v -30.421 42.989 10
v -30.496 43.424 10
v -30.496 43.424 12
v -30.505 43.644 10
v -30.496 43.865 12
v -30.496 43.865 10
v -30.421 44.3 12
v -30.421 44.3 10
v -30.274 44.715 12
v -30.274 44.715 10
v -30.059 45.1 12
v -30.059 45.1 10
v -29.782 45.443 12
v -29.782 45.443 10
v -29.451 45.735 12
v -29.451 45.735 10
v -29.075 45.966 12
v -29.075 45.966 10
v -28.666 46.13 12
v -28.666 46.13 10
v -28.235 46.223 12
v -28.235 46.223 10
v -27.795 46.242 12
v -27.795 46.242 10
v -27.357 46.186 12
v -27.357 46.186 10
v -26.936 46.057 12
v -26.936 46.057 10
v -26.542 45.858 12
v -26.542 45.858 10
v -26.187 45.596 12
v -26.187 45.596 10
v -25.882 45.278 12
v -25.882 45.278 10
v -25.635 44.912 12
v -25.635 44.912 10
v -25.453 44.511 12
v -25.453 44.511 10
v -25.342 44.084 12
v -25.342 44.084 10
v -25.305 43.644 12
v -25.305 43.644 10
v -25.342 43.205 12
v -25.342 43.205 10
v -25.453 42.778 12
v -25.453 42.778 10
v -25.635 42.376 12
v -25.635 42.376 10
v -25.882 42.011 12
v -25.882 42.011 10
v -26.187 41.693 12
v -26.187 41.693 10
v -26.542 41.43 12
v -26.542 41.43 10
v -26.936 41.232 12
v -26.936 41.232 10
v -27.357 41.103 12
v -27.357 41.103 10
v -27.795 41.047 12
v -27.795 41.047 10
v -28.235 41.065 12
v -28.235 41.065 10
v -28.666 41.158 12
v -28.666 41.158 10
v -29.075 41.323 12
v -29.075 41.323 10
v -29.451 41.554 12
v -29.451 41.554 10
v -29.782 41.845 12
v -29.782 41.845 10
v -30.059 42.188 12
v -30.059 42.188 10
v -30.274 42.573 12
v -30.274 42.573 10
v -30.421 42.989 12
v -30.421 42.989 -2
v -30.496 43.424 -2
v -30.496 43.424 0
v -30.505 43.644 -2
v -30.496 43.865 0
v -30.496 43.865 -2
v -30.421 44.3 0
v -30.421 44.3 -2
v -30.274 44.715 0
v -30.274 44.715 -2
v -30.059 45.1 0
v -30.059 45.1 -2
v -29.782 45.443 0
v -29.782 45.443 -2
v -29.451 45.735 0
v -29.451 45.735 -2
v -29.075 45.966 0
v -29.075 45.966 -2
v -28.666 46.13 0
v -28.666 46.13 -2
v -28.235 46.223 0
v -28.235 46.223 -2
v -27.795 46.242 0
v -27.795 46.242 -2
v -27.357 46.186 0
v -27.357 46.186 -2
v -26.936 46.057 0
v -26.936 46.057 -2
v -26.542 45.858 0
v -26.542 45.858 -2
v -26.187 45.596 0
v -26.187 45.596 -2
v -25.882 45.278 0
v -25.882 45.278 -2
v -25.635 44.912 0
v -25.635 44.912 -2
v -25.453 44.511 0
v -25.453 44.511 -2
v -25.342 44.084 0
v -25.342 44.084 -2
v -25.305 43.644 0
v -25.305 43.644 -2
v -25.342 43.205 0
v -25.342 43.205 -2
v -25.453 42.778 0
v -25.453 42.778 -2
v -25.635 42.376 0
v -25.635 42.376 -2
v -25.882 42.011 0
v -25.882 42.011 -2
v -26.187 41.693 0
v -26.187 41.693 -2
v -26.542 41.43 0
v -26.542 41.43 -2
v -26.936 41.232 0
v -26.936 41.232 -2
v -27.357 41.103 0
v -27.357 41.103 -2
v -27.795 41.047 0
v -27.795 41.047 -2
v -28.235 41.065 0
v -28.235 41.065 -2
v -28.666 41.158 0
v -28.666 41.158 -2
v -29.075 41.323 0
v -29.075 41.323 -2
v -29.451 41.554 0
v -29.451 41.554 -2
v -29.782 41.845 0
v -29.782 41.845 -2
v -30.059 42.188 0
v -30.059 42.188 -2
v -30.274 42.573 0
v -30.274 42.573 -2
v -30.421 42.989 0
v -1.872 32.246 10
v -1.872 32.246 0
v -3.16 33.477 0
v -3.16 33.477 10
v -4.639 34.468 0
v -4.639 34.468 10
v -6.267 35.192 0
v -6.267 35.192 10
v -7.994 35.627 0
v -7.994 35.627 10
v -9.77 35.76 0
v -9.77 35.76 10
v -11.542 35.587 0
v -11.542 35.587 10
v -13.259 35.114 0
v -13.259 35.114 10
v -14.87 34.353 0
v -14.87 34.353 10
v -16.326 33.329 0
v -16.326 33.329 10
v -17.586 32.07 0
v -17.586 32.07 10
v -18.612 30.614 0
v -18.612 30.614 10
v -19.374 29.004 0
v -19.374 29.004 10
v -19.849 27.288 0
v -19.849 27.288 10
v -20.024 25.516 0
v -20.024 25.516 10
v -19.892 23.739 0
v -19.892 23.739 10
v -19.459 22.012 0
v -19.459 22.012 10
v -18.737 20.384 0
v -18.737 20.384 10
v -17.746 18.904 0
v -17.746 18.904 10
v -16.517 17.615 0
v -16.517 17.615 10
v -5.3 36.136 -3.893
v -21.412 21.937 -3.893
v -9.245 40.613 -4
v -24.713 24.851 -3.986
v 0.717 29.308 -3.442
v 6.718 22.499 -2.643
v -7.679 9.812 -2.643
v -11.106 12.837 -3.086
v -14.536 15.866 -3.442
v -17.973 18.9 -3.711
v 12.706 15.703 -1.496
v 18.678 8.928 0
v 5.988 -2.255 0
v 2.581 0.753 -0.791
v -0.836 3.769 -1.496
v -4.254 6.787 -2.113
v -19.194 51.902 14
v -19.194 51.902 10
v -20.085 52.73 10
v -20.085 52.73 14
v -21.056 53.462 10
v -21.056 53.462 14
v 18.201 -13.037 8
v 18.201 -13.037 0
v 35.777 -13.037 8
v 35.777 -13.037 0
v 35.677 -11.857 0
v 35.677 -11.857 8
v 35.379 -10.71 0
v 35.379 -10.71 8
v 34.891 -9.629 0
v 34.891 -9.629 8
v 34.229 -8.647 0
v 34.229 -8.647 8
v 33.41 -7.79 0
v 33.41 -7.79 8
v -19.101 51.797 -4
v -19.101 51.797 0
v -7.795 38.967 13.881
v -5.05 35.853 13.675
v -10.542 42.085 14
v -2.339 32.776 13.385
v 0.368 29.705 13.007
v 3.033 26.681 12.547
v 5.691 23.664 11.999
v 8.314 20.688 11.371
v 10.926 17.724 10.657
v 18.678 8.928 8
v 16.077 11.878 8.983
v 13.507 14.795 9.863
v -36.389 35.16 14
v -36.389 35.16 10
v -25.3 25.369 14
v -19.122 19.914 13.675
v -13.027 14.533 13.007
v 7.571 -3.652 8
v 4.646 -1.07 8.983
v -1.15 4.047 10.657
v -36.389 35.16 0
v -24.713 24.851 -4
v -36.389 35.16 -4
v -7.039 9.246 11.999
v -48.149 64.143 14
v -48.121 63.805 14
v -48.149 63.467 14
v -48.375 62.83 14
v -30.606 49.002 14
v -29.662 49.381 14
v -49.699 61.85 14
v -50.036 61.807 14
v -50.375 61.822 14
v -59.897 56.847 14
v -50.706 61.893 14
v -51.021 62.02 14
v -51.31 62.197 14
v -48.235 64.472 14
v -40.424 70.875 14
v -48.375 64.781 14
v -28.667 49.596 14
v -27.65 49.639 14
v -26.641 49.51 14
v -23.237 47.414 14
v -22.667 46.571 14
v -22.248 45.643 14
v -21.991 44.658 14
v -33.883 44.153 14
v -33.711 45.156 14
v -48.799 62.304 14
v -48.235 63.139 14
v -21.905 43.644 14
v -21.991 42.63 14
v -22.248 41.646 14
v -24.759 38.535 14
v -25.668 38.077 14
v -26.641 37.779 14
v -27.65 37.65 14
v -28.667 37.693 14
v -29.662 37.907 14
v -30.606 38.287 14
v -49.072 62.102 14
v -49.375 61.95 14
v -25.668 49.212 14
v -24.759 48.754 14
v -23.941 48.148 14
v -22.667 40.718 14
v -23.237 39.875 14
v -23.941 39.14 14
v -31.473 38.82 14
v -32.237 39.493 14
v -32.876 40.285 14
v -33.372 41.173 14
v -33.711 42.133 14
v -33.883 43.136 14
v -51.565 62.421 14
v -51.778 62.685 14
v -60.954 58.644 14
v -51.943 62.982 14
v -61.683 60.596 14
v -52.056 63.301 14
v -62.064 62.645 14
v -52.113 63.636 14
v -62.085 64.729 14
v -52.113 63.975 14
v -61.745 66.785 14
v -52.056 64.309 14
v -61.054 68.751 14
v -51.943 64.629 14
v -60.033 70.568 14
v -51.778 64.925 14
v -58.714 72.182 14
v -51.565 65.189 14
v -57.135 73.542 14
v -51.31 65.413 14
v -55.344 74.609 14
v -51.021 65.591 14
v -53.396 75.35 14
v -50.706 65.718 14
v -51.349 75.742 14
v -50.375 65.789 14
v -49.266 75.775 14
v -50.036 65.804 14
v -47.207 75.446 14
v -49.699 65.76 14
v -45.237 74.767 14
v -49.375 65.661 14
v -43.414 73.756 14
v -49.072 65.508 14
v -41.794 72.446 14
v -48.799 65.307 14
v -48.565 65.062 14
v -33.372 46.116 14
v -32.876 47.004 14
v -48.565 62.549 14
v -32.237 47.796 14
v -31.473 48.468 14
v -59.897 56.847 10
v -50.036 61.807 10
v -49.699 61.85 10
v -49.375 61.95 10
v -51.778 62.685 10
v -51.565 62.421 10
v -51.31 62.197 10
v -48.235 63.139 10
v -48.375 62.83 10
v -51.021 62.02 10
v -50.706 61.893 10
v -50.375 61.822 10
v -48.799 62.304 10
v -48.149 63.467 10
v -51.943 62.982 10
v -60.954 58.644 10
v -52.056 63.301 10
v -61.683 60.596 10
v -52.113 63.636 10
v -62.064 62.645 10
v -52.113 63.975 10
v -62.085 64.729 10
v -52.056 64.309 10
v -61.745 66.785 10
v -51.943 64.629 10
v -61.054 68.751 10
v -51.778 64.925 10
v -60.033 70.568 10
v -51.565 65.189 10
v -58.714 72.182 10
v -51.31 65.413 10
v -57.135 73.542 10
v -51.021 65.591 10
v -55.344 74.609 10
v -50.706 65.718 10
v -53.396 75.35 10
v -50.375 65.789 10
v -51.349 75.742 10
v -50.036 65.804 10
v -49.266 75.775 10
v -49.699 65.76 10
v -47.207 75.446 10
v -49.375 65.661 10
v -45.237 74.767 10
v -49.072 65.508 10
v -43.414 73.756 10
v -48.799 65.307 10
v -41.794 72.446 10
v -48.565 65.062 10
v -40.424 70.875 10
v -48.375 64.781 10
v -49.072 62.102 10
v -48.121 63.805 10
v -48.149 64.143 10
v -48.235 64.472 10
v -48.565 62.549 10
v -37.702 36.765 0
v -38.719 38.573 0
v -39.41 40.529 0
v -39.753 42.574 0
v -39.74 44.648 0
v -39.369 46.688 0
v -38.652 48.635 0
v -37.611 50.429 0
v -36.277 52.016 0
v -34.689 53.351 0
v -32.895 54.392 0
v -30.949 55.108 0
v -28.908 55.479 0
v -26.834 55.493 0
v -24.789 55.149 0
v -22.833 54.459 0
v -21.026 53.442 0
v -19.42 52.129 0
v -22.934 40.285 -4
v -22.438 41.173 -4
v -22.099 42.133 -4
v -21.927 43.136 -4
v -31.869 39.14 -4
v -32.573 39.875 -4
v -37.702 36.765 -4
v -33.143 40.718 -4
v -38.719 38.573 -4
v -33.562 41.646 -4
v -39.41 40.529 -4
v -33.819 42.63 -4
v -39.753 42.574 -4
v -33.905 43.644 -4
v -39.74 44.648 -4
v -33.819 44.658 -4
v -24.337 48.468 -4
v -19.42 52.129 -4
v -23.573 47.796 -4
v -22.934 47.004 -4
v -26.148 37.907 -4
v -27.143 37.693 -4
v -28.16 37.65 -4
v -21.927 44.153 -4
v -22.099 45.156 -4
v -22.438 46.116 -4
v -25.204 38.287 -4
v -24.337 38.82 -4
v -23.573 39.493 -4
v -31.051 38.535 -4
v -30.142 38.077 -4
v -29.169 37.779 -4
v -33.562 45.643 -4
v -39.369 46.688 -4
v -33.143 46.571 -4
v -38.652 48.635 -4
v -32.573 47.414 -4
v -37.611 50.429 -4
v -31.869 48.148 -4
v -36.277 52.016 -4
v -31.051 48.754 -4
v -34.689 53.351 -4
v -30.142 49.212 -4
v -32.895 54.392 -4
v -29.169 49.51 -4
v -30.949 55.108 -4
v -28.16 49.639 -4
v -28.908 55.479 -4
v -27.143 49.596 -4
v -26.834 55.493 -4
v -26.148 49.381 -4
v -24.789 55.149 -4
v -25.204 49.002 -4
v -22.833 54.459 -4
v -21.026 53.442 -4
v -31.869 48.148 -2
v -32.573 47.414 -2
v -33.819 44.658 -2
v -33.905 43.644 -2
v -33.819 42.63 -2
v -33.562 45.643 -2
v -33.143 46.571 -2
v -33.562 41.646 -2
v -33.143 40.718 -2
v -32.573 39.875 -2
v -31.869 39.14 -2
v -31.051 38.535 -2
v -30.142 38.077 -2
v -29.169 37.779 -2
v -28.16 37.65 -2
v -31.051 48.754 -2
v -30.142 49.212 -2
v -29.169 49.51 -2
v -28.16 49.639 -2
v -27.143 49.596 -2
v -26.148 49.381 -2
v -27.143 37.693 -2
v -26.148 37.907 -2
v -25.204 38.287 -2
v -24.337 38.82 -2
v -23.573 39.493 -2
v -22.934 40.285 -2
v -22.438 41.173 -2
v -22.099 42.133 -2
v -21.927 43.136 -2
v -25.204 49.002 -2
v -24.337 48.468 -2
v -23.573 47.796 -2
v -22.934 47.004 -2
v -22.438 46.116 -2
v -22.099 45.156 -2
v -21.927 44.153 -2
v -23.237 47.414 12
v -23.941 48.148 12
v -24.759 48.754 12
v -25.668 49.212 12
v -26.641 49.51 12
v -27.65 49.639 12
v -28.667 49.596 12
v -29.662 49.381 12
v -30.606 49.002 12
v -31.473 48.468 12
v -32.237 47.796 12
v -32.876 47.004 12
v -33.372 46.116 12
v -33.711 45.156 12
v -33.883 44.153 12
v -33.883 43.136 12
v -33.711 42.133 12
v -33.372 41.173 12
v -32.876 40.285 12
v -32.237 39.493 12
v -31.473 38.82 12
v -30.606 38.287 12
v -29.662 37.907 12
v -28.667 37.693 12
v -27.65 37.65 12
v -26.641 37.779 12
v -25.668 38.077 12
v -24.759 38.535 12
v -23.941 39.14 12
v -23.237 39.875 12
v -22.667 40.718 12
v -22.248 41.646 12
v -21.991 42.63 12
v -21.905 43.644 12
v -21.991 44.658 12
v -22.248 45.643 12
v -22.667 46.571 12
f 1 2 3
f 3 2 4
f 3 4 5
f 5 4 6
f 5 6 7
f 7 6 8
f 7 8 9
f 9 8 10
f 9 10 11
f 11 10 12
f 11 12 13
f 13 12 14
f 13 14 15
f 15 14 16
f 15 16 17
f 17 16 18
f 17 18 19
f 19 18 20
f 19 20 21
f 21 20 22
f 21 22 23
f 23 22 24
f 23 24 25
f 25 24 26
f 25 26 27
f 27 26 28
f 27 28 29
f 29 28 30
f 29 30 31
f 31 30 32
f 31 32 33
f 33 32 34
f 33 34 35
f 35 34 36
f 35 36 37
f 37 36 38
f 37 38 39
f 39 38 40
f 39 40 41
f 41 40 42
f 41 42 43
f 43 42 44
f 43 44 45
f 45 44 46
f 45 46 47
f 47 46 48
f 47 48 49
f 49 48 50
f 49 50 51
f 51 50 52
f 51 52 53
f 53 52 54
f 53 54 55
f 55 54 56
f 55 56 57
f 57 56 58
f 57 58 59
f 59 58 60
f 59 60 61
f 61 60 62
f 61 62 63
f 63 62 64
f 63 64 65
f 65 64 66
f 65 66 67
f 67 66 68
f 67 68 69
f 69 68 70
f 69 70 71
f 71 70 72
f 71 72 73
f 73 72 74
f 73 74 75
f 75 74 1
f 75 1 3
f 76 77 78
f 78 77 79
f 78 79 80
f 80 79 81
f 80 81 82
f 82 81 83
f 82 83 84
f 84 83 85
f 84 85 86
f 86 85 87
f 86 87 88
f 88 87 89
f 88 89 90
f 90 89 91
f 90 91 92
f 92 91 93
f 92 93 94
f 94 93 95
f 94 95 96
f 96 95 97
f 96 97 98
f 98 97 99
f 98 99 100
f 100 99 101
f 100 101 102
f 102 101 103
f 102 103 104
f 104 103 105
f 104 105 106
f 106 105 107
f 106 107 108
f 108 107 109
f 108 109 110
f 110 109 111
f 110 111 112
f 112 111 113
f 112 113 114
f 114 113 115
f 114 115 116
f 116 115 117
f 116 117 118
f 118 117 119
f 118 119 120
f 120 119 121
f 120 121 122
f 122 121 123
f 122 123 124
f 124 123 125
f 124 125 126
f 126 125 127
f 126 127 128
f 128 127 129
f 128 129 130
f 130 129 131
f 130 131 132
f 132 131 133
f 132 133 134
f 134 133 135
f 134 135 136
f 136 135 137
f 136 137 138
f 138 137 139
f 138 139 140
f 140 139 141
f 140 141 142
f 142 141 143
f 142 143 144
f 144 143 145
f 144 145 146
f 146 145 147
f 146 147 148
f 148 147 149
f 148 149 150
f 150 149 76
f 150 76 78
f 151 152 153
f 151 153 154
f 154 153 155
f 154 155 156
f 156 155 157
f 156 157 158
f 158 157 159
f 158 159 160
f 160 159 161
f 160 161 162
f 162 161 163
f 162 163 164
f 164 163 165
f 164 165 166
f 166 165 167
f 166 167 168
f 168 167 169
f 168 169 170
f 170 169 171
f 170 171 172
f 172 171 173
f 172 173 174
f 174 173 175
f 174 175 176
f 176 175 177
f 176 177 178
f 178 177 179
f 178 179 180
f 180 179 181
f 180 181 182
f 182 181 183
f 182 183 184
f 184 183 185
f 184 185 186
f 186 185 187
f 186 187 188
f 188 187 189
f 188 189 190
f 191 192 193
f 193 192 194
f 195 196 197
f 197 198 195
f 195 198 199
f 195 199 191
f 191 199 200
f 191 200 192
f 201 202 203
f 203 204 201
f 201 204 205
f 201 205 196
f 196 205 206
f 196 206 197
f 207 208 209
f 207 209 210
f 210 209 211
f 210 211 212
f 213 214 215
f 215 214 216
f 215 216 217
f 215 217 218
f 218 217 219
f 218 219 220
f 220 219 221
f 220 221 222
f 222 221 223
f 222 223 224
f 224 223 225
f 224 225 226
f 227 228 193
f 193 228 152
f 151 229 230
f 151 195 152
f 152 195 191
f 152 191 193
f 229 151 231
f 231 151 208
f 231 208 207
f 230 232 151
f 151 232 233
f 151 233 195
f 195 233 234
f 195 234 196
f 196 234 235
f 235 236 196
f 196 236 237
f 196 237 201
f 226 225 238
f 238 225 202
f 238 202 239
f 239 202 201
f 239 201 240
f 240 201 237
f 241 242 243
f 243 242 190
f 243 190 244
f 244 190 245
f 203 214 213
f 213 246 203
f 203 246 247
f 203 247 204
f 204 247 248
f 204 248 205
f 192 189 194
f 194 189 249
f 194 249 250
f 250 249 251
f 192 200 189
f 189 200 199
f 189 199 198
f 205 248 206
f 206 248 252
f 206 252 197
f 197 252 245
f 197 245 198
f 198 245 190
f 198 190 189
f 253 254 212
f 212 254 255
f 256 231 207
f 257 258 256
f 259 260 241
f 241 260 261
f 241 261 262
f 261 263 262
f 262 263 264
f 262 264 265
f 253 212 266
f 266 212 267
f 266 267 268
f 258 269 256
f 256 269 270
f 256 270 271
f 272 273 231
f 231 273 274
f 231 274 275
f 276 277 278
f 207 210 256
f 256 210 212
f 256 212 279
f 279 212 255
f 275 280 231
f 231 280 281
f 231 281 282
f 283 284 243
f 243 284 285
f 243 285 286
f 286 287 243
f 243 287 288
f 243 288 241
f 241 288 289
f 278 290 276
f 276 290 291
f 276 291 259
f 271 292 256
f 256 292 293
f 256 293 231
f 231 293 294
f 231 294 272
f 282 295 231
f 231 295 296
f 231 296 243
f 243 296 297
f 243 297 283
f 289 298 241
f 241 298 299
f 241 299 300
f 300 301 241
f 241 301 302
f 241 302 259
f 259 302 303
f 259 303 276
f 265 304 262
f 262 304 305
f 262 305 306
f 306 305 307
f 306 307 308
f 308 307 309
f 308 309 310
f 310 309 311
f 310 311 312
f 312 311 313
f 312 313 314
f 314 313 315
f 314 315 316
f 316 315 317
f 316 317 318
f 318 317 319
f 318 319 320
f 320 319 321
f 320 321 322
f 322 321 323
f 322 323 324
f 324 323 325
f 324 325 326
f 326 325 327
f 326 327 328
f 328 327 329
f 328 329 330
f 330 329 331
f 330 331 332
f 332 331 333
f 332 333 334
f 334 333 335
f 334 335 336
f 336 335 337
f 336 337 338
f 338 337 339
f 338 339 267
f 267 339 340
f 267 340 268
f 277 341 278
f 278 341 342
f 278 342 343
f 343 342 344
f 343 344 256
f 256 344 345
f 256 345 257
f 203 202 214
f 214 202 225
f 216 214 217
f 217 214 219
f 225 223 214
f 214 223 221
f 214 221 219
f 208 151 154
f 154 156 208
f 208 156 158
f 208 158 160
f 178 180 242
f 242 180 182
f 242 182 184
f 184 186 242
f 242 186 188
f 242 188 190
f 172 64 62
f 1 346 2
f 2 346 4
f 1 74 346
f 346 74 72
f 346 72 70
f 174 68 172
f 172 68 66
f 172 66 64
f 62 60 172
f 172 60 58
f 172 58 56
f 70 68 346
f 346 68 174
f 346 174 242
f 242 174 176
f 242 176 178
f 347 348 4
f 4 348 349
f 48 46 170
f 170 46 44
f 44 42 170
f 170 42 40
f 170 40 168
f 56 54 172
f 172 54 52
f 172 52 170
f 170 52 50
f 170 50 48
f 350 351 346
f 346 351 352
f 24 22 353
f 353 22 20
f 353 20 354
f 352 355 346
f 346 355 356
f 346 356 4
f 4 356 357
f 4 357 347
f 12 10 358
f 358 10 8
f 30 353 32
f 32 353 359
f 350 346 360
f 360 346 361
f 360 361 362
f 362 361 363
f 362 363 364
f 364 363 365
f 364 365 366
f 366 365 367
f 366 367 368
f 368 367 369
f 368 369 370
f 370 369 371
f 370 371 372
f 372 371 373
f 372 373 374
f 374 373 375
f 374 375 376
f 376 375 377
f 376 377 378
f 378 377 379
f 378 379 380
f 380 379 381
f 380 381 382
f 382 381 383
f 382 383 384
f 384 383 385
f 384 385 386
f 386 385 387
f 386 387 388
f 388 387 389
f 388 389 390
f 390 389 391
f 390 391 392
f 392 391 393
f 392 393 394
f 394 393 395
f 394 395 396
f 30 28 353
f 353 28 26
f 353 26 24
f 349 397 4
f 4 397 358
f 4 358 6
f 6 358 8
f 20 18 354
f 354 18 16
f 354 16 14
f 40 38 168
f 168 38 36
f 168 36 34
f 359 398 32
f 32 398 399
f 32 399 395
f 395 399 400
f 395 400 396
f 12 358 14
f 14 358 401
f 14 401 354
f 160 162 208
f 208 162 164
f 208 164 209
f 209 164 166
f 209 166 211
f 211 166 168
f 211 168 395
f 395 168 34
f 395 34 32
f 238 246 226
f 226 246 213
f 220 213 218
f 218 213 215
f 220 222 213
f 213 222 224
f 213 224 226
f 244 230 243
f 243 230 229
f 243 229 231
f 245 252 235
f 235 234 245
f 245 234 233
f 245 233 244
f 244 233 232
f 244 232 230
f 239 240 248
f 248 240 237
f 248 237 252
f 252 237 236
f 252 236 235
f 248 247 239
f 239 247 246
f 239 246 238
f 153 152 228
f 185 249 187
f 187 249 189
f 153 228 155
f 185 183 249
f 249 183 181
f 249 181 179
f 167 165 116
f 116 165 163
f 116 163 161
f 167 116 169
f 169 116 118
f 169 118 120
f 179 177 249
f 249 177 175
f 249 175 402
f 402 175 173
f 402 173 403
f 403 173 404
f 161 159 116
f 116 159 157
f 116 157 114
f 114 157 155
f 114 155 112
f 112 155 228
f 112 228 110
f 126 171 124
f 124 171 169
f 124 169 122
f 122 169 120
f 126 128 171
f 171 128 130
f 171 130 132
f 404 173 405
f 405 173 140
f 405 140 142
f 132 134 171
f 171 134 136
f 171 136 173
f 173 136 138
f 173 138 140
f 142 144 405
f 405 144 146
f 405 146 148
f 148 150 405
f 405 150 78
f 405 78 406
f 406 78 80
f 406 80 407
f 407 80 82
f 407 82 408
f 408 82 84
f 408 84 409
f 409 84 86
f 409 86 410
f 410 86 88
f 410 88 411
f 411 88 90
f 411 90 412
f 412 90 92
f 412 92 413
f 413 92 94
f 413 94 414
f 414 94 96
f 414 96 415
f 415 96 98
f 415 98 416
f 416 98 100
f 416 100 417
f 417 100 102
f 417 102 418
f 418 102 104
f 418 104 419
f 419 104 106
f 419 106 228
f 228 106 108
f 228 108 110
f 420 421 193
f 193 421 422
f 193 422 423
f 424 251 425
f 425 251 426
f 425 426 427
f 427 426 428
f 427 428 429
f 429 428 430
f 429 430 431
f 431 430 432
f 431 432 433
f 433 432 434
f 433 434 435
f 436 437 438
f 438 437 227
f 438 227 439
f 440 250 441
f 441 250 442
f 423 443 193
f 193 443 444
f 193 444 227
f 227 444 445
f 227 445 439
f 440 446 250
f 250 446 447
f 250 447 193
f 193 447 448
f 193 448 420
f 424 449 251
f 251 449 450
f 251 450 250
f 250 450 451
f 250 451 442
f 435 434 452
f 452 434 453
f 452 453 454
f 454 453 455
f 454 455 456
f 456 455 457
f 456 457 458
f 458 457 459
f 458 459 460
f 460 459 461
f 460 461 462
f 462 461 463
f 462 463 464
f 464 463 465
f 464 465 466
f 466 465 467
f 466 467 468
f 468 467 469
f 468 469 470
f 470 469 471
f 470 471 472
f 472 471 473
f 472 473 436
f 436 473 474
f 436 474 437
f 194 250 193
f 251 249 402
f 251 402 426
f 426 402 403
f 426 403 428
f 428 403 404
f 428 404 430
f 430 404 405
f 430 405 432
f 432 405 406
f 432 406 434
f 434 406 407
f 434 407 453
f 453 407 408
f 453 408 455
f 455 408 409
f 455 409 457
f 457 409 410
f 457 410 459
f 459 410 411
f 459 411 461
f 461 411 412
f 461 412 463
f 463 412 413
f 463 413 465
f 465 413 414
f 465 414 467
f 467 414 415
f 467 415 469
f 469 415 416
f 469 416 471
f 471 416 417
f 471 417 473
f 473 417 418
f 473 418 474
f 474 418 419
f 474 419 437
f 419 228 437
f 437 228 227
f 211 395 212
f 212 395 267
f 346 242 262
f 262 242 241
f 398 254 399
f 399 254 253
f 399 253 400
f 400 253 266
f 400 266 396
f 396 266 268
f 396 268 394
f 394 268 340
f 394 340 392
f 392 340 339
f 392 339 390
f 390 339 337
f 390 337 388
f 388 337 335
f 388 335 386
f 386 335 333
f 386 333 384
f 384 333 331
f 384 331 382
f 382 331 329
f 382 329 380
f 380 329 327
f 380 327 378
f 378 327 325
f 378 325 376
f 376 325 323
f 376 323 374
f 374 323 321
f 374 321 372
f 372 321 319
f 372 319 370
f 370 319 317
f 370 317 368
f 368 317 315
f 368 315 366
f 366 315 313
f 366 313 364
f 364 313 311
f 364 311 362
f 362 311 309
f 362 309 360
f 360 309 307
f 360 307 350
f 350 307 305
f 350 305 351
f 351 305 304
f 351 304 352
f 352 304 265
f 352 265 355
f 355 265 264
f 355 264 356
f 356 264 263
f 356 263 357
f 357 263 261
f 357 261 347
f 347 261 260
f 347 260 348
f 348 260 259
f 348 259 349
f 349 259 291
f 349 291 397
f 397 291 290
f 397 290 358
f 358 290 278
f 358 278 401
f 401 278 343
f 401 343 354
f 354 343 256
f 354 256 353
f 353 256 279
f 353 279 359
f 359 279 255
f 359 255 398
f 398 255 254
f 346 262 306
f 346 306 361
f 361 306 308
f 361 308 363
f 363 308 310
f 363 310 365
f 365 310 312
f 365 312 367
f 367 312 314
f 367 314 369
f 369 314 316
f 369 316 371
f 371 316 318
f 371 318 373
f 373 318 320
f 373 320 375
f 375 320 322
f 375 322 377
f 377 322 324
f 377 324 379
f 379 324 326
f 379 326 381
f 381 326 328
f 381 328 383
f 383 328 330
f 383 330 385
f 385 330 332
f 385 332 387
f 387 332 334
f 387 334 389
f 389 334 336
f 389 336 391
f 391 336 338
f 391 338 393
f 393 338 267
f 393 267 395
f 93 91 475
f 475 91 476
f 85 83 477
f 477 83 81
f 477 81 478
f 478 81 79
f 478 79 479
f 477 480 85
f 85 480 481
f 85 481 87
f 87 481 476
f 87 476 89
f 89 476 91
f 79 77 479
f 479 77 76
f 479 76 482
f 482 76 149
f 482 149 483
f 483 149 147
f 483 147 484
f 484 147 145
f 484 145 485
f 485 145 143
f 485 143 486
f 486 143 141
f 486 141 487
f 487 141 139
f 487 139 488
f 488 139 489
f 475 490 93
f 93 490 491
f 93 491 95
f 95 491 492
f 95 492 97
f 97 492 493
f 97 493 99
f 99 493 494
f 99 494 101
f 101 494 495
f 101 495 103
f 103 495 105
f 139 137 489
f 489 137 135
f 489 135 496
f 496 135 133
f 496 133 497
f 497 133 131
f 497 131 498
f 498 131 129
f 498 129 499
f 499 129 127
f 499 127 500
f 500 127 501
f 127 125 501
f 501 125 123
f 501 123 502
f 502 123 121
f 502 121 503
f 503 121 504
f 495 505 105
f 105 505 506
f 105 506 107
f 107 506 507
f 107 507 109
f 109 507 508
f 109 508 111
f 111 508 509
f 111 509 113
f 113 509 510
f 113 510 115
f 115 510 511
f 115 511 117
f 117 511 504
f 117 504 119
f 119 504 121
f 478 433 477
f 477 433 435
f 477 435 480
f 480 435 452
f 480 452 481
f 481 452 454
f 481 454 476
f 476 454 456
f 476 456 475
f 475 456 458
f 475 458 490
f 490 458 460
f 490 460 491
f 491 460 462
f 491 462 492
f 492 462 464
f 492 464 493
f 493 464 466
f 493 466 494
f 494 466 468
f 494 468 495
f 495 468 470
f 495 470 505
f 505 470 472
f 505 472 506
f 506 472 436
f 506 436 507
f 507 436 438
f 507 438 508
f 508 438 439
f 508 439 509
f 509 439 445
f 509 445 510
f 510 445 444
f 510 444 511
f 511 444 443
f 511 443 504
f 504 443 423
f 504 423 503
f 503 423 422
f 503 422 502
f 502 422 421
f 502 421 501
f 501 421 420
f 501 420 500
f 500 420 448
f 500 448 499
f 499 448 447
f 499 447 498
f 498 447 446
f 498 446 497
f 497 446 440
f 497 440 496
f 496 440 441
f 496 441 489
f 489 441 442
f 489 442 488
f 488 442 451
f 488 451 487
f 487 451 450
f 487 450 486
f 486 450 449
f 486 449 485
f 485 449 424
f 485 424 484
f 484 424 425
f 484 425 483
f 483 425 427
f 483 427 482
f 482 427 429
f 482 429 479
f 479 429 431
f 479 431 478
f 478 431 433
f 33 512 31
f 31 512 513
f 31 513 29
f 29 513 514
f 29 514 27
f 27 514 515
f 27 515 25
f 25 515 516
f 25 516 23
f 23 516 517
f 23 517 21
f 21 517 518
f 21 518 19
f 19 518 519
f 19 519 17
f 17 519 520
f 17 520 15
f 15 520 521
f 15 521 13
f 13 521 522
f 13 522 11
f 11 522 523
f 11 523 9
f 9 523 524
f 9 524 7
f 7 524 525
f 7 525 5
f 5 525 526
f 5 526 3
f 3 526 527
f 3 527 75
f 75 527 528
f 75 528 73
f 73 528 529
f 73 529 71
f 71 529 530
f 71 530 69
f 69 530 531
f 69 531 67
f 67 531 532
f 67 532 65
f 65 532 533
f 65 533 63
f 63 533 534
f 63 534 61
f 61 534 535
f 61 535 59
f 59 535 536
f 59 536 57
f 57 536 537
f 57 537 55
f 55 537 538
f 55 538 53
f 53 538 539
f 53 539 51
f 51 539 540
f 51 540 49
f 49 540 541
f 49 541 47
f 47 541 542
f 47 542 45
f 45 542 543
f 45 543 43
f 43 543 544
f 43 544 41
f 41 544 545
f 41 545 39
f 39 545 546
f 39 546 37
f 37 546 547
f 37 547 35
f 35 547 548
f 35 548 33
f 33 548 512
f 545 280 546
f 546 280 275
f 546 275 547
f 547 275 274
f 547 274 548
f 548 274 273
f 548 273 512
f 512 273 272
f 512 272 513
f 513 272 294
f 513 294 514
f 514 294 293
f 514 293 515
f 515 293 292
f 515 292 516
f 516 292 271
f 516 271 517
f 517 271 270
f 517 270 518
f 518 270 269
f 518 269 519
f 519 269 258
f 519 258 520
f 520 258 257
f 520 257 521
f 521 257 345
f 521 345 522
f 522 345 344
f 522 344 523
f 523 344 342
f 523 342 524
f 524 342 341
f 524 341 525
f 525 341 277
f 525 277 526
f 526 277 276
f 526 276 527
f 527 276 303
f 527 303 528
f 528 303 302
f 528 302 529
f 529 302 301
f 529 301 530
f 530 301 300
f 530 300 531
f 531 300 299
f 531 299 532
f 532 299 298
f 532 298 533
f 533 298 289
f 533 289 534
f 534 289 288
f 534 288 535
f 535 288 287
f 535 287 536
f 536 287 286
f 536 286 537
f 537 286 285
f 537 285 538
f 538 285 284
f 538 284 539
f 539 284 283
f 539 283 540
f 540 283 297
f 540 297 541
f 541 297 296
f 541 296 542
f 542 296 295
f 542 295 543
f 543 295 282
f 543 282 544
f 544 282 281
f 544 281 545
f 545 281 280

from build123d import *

# Parameters (mm, degrees)
BOSS_EXTRUDE1_DEPTH = 14
CUT_EXTRUDE1_DEPTH  = 17
CUT_EXTRUDE3_DEPTH  = 10
CUT_EXTRUDE5_DEPTH  = 28.00000000000001
BOSS_EXTRUDE2_START = 10
SKETCH7_R           = 2.599999999999999
BOSS_EXTRUDE2_DEPTH = 4
BOSS_EXTRUDE3_DEPTH = 24.000000000000014
CUT_EXTRUDE6_DEPTH  = 24.000000000000014
FILLET3_R           = 10.371224
SKETCH11_R          = 2.0000000000000036
BOSS_EXTRUDE4_DEPTH = 4.0000000000000036
SKETCH12_R          = 5.999999999999998
CUT_EXTRUDE7_DEPTH  = 2
CUT_EXTRUDE8_START  = -2
SKETCH13_R          = 6.000000000000001
CUT_EXTRUDE8_DEPTH  = 2


with BuildPart() as part:
    # Sketch1 → Boss-Extrude1 (new body)
    with BuildSketch(Plane.XY):
        with BuildLine():
            Line((-36.38946679579018, 35.15986129833476), (18.20052051694879, -13.03747639081095))
            Line((18.20052051694879, -13.03747639081095), (35.77692020217122, -13.037476390810937))
            ThreePointArc((35.77692020217122, -13.037476390810937), (35.15777812721451, -10.159169225075718), (33.40987673348322, -7.79002807961883))
            Line((33.40987673348322, -7.79002807961883), (-19.19377778956647, 51.90227090989418))
            ThreePointArc((-19.19377778956647, 51.90227090989418), (-36.16282709845803, 52.12891060722632), (-36.38946679579018, 35.15986129833476))
        make_face()
    extrude(amount=BOSS_EXTRUDE1_DEPTH)

    # Sketch2 → Cut-Extrude1 (cut)
    with BuildSketch(Plane.XY.offset(14)):
        with BuildLine():
            ThreePointArc((-26.066464510259447, 45.48286358386564), (-29.74341977242946, 45.48286358386556), (-29.74341977242945, 41.80590832169555))
            Line((-29.74341977242943, 41.80590832169553), (-26.066464510259397, 45.48286358386558))
        make_face()
        with BuildLine():
            Line((-26.066464510259397, 45.48286358386558), (-29.74341977242943, 41.80590832169553))
            ThreePointArc((-29.74341977242945, 41.805908321695554), (-26.90996521719519, 41.24229916825121), (-25.304942141344416, 43.64438595278056))
            ThreePointArc((-25.304942141344416, 43.64438595278056), (-25.502855356815083, 44.63936287692983), (-26.066464510259447, 45.48286358386564))
        make_face()
    extrude(amount=-CUT_EXTRUDE1_DEPTH, mode=Mode.SUBTRACT)

    # Sketch3 → Cut-Extrude3 (cut)
    with BuildSketch(Plane(origin=(0, 0, 0), x_dir=(-1, 0, 0), z_dir=(0, 0, -1))):
        Polygon((9.244950076252596, 40.61278154184911), (25.60190789451236, 23.944622093291866), (43.70935849975749, 23.944622093291866), (43.70935849975749, 56.22709716223903), (9.244950076252595, 56.22709716223903), align=None)
    extrude(amount=-CUT_EXTRUDE3_DEPTH, mode=Mode.SUBTRACT)

    # Sketch4 → Cut-Extrude5 (cut)
    with BuildSketch(Plane(origin=(1.5041731974177077, 1.7036790764832412, 0), x_dir=(0.7496354730351515, -0.6618509330410925, 0), z_dir=(-0.6618509330410925, -0.7496354730351515, 0))):
        with BuildLine():
            Line((8.092649067523661, 8), (43.108918661974144, 8))
            Line((43.108918661974144, 8), (43.108918661974144, 14))
            Line((43.108918661974144, 14), (-35.75655339767276, 14))
            add(Edge.make_bspline(
                [(8.092649067523661, 8), (-13.064100153172822, 13.584073422401662), (-35.75655339767276, 14)],
                knots=[0, 0, 0, 1, 1, 1], degree=2))
        make_face()
    extrude(amount=-CUT_EXTRUDE5_DEPTH, mode=Mode.SUBTRACT)



with BuildPart() as body_2:
    # Sketch7 → Boss-Extrude2 (new body)
    with BuildSketch(Plane(origin=(0, 0, 10), x_dir=(-1, 0, 0), z_dir=(0, 0, -1)).offset(BOSS_EXTRUDE2_START)):
        with BuildLine():
            Line((9.244950076252595, 40.61278154184911), (24.71284152511152, 24.85060352151197))
            Line((24.71284152511152, 24.85060352151197), (35.272794661727836, 34.17395478721706))
            Line((35.272794661727836, 34.17395478721706), (36.38946679579018, 35.15986129833476))
            ThreePointArc((36.38946679579018, 35.15986129833476), (36.27690366691708, 52.016347478352856), (19.420417486898984, 52.12891060722668))
            ThreePointArc((19.420417486898984, 52.128910607226686), (19.259089791001077, 51.96445532507904), (19.10094915036315, 51.79693307859034))
            Line((19.10094915036315, 51.79693307859034), (18.710021655268264, 51.3533258590539))
            Line((18.710021655268264, 51.3533258590539), (9.244950076252596, 40.61278154184911))
        make_face()
        with Locations(Location((27.904942141344414, 43.64438595278056, 0), (0, 0, 180))):
            Circle(SKETCH7_R, mode=Mode.SUBTRACT)
    extrude(amount=BOSS_EXTRUDE2_DEPTH)


with BuildPart() as part_1:
    add(part.part)

    add(body_2.part)  # Boss-Extrude3 merges body 2
    # Sketch9 → Boss-Extrude3 (add)
    with BuildSketch(Plane(origin=(14.941459139681696, 13.167114819822281, 0), x_dir=(0, 0, -1), z_dir=(0.7502493779859964, 0.6611549522098625, 0))):
        with BuildLine():
            Line((0, 36.582058615900806), (0, -5.650867010397978))
            add(Edge.make_bspline(
                [(0, -5.650867010397978), (3.8818367436513204, 15.308651069653255), (4, 36.582058615900806)],
                knots=[0, 0, 0, 1, 1, 1], degree=2))
            Line((4, 36.582058615900806), (0, 36.582058615900806))
        make_face()
    extrude(amount=-BOSS_EXTRUDE3_DEPTH)

    # Sketch10 → Cut-Extrude6 (cut)
    with BuildSketch(Plane.XY):
        Polygon((-25.92087579699025, 25.91717339280068), (6.581343150758677, -2.7789391982650153), (-1.9207549102098282, -11.21281031813962), (-35.1442259060093, 19.61838673287275), align=None)
    extrude(amount=-CUT_EXTRUDE6_DEPTH, mode=Mode.SUBTRACT)

    # Fillet3
    fillet3_edges = [part_1.edges().sort_by_distance(p)[0] for p in [
        (-24.712841525111525, 24.85060352151197, 5),
        (-9.244950076252596, 40.61278154184911, 5),
    ]]
    fillet(fillet3_edges, radius=FILLET3_R - 0.0001)  # a hair under: the kernel refuses the full size

    # Sketch11 → Boss-Extrude4 (add)
    with BuildSketch(Plane.XY.offset(14)):
        with BuildLine():
            Line((-56.27002242528391, 53.500762526462196), (-36.38946679579018, 35.15986129833476))
            Line((-36.38946679579018, 35.15986129833476), (-31.30885180689802, 50.34187338631568))
            Line((-31.30885180689802, 50.34187338631568), (-18.71002165526834, 51.353325859054))
            Line((-18.71002165526834, 51.353325859054), (-40.42419503361445, 70.87498928012118))
            ThreePointArc((-40.42419503361445, 70.87498928012118), (-57.13470265149496, 73.54200286861439), (-59.89717634802535, 56.84701064326646))
            Line((-59.89717634802535, 56.84701064326646), (-56.27002242528391, 53.500762526462196))
        make_face()
        with Locations((-50.120598780049356, 63.8053531942874)):
            Circle(SKETCH11_R, mode=Mode.SUBTRACT)
    extrude(amount=-BOSS_EXTRUDE4_DEPTH)

    # Sketch12 → Cut-Extrude7 (cut)
    with BuildSketch(Plane(origin=(0, 0, -4), x_dir=(-1, 0, 0), z_dir=(0, 0, -1))):
        with Locations((27.904942141344414, 43.64438595278056)):
            Circle(SKETCH12_R)
    extrude(amount=-CUT_EXTRUDE7_DEPTH, mode=Mode.SUBTRACT)

    # Sketch13 → Cut-Extrude8 (cut)
    with BuildSketch(Plane.XY.offset(14).offset(CUT_EXTRUDE8_START)):
        with Locations(Location((-27.904942141344414, 43.64438595278056, 0), (0, 0, 180))):
            Circle(SKETCH13_R)
    extrude(amount=CUT_EXTRUDE8_DEPTH, mode=Mode.SUBTRACT)


solid = part_1.part
